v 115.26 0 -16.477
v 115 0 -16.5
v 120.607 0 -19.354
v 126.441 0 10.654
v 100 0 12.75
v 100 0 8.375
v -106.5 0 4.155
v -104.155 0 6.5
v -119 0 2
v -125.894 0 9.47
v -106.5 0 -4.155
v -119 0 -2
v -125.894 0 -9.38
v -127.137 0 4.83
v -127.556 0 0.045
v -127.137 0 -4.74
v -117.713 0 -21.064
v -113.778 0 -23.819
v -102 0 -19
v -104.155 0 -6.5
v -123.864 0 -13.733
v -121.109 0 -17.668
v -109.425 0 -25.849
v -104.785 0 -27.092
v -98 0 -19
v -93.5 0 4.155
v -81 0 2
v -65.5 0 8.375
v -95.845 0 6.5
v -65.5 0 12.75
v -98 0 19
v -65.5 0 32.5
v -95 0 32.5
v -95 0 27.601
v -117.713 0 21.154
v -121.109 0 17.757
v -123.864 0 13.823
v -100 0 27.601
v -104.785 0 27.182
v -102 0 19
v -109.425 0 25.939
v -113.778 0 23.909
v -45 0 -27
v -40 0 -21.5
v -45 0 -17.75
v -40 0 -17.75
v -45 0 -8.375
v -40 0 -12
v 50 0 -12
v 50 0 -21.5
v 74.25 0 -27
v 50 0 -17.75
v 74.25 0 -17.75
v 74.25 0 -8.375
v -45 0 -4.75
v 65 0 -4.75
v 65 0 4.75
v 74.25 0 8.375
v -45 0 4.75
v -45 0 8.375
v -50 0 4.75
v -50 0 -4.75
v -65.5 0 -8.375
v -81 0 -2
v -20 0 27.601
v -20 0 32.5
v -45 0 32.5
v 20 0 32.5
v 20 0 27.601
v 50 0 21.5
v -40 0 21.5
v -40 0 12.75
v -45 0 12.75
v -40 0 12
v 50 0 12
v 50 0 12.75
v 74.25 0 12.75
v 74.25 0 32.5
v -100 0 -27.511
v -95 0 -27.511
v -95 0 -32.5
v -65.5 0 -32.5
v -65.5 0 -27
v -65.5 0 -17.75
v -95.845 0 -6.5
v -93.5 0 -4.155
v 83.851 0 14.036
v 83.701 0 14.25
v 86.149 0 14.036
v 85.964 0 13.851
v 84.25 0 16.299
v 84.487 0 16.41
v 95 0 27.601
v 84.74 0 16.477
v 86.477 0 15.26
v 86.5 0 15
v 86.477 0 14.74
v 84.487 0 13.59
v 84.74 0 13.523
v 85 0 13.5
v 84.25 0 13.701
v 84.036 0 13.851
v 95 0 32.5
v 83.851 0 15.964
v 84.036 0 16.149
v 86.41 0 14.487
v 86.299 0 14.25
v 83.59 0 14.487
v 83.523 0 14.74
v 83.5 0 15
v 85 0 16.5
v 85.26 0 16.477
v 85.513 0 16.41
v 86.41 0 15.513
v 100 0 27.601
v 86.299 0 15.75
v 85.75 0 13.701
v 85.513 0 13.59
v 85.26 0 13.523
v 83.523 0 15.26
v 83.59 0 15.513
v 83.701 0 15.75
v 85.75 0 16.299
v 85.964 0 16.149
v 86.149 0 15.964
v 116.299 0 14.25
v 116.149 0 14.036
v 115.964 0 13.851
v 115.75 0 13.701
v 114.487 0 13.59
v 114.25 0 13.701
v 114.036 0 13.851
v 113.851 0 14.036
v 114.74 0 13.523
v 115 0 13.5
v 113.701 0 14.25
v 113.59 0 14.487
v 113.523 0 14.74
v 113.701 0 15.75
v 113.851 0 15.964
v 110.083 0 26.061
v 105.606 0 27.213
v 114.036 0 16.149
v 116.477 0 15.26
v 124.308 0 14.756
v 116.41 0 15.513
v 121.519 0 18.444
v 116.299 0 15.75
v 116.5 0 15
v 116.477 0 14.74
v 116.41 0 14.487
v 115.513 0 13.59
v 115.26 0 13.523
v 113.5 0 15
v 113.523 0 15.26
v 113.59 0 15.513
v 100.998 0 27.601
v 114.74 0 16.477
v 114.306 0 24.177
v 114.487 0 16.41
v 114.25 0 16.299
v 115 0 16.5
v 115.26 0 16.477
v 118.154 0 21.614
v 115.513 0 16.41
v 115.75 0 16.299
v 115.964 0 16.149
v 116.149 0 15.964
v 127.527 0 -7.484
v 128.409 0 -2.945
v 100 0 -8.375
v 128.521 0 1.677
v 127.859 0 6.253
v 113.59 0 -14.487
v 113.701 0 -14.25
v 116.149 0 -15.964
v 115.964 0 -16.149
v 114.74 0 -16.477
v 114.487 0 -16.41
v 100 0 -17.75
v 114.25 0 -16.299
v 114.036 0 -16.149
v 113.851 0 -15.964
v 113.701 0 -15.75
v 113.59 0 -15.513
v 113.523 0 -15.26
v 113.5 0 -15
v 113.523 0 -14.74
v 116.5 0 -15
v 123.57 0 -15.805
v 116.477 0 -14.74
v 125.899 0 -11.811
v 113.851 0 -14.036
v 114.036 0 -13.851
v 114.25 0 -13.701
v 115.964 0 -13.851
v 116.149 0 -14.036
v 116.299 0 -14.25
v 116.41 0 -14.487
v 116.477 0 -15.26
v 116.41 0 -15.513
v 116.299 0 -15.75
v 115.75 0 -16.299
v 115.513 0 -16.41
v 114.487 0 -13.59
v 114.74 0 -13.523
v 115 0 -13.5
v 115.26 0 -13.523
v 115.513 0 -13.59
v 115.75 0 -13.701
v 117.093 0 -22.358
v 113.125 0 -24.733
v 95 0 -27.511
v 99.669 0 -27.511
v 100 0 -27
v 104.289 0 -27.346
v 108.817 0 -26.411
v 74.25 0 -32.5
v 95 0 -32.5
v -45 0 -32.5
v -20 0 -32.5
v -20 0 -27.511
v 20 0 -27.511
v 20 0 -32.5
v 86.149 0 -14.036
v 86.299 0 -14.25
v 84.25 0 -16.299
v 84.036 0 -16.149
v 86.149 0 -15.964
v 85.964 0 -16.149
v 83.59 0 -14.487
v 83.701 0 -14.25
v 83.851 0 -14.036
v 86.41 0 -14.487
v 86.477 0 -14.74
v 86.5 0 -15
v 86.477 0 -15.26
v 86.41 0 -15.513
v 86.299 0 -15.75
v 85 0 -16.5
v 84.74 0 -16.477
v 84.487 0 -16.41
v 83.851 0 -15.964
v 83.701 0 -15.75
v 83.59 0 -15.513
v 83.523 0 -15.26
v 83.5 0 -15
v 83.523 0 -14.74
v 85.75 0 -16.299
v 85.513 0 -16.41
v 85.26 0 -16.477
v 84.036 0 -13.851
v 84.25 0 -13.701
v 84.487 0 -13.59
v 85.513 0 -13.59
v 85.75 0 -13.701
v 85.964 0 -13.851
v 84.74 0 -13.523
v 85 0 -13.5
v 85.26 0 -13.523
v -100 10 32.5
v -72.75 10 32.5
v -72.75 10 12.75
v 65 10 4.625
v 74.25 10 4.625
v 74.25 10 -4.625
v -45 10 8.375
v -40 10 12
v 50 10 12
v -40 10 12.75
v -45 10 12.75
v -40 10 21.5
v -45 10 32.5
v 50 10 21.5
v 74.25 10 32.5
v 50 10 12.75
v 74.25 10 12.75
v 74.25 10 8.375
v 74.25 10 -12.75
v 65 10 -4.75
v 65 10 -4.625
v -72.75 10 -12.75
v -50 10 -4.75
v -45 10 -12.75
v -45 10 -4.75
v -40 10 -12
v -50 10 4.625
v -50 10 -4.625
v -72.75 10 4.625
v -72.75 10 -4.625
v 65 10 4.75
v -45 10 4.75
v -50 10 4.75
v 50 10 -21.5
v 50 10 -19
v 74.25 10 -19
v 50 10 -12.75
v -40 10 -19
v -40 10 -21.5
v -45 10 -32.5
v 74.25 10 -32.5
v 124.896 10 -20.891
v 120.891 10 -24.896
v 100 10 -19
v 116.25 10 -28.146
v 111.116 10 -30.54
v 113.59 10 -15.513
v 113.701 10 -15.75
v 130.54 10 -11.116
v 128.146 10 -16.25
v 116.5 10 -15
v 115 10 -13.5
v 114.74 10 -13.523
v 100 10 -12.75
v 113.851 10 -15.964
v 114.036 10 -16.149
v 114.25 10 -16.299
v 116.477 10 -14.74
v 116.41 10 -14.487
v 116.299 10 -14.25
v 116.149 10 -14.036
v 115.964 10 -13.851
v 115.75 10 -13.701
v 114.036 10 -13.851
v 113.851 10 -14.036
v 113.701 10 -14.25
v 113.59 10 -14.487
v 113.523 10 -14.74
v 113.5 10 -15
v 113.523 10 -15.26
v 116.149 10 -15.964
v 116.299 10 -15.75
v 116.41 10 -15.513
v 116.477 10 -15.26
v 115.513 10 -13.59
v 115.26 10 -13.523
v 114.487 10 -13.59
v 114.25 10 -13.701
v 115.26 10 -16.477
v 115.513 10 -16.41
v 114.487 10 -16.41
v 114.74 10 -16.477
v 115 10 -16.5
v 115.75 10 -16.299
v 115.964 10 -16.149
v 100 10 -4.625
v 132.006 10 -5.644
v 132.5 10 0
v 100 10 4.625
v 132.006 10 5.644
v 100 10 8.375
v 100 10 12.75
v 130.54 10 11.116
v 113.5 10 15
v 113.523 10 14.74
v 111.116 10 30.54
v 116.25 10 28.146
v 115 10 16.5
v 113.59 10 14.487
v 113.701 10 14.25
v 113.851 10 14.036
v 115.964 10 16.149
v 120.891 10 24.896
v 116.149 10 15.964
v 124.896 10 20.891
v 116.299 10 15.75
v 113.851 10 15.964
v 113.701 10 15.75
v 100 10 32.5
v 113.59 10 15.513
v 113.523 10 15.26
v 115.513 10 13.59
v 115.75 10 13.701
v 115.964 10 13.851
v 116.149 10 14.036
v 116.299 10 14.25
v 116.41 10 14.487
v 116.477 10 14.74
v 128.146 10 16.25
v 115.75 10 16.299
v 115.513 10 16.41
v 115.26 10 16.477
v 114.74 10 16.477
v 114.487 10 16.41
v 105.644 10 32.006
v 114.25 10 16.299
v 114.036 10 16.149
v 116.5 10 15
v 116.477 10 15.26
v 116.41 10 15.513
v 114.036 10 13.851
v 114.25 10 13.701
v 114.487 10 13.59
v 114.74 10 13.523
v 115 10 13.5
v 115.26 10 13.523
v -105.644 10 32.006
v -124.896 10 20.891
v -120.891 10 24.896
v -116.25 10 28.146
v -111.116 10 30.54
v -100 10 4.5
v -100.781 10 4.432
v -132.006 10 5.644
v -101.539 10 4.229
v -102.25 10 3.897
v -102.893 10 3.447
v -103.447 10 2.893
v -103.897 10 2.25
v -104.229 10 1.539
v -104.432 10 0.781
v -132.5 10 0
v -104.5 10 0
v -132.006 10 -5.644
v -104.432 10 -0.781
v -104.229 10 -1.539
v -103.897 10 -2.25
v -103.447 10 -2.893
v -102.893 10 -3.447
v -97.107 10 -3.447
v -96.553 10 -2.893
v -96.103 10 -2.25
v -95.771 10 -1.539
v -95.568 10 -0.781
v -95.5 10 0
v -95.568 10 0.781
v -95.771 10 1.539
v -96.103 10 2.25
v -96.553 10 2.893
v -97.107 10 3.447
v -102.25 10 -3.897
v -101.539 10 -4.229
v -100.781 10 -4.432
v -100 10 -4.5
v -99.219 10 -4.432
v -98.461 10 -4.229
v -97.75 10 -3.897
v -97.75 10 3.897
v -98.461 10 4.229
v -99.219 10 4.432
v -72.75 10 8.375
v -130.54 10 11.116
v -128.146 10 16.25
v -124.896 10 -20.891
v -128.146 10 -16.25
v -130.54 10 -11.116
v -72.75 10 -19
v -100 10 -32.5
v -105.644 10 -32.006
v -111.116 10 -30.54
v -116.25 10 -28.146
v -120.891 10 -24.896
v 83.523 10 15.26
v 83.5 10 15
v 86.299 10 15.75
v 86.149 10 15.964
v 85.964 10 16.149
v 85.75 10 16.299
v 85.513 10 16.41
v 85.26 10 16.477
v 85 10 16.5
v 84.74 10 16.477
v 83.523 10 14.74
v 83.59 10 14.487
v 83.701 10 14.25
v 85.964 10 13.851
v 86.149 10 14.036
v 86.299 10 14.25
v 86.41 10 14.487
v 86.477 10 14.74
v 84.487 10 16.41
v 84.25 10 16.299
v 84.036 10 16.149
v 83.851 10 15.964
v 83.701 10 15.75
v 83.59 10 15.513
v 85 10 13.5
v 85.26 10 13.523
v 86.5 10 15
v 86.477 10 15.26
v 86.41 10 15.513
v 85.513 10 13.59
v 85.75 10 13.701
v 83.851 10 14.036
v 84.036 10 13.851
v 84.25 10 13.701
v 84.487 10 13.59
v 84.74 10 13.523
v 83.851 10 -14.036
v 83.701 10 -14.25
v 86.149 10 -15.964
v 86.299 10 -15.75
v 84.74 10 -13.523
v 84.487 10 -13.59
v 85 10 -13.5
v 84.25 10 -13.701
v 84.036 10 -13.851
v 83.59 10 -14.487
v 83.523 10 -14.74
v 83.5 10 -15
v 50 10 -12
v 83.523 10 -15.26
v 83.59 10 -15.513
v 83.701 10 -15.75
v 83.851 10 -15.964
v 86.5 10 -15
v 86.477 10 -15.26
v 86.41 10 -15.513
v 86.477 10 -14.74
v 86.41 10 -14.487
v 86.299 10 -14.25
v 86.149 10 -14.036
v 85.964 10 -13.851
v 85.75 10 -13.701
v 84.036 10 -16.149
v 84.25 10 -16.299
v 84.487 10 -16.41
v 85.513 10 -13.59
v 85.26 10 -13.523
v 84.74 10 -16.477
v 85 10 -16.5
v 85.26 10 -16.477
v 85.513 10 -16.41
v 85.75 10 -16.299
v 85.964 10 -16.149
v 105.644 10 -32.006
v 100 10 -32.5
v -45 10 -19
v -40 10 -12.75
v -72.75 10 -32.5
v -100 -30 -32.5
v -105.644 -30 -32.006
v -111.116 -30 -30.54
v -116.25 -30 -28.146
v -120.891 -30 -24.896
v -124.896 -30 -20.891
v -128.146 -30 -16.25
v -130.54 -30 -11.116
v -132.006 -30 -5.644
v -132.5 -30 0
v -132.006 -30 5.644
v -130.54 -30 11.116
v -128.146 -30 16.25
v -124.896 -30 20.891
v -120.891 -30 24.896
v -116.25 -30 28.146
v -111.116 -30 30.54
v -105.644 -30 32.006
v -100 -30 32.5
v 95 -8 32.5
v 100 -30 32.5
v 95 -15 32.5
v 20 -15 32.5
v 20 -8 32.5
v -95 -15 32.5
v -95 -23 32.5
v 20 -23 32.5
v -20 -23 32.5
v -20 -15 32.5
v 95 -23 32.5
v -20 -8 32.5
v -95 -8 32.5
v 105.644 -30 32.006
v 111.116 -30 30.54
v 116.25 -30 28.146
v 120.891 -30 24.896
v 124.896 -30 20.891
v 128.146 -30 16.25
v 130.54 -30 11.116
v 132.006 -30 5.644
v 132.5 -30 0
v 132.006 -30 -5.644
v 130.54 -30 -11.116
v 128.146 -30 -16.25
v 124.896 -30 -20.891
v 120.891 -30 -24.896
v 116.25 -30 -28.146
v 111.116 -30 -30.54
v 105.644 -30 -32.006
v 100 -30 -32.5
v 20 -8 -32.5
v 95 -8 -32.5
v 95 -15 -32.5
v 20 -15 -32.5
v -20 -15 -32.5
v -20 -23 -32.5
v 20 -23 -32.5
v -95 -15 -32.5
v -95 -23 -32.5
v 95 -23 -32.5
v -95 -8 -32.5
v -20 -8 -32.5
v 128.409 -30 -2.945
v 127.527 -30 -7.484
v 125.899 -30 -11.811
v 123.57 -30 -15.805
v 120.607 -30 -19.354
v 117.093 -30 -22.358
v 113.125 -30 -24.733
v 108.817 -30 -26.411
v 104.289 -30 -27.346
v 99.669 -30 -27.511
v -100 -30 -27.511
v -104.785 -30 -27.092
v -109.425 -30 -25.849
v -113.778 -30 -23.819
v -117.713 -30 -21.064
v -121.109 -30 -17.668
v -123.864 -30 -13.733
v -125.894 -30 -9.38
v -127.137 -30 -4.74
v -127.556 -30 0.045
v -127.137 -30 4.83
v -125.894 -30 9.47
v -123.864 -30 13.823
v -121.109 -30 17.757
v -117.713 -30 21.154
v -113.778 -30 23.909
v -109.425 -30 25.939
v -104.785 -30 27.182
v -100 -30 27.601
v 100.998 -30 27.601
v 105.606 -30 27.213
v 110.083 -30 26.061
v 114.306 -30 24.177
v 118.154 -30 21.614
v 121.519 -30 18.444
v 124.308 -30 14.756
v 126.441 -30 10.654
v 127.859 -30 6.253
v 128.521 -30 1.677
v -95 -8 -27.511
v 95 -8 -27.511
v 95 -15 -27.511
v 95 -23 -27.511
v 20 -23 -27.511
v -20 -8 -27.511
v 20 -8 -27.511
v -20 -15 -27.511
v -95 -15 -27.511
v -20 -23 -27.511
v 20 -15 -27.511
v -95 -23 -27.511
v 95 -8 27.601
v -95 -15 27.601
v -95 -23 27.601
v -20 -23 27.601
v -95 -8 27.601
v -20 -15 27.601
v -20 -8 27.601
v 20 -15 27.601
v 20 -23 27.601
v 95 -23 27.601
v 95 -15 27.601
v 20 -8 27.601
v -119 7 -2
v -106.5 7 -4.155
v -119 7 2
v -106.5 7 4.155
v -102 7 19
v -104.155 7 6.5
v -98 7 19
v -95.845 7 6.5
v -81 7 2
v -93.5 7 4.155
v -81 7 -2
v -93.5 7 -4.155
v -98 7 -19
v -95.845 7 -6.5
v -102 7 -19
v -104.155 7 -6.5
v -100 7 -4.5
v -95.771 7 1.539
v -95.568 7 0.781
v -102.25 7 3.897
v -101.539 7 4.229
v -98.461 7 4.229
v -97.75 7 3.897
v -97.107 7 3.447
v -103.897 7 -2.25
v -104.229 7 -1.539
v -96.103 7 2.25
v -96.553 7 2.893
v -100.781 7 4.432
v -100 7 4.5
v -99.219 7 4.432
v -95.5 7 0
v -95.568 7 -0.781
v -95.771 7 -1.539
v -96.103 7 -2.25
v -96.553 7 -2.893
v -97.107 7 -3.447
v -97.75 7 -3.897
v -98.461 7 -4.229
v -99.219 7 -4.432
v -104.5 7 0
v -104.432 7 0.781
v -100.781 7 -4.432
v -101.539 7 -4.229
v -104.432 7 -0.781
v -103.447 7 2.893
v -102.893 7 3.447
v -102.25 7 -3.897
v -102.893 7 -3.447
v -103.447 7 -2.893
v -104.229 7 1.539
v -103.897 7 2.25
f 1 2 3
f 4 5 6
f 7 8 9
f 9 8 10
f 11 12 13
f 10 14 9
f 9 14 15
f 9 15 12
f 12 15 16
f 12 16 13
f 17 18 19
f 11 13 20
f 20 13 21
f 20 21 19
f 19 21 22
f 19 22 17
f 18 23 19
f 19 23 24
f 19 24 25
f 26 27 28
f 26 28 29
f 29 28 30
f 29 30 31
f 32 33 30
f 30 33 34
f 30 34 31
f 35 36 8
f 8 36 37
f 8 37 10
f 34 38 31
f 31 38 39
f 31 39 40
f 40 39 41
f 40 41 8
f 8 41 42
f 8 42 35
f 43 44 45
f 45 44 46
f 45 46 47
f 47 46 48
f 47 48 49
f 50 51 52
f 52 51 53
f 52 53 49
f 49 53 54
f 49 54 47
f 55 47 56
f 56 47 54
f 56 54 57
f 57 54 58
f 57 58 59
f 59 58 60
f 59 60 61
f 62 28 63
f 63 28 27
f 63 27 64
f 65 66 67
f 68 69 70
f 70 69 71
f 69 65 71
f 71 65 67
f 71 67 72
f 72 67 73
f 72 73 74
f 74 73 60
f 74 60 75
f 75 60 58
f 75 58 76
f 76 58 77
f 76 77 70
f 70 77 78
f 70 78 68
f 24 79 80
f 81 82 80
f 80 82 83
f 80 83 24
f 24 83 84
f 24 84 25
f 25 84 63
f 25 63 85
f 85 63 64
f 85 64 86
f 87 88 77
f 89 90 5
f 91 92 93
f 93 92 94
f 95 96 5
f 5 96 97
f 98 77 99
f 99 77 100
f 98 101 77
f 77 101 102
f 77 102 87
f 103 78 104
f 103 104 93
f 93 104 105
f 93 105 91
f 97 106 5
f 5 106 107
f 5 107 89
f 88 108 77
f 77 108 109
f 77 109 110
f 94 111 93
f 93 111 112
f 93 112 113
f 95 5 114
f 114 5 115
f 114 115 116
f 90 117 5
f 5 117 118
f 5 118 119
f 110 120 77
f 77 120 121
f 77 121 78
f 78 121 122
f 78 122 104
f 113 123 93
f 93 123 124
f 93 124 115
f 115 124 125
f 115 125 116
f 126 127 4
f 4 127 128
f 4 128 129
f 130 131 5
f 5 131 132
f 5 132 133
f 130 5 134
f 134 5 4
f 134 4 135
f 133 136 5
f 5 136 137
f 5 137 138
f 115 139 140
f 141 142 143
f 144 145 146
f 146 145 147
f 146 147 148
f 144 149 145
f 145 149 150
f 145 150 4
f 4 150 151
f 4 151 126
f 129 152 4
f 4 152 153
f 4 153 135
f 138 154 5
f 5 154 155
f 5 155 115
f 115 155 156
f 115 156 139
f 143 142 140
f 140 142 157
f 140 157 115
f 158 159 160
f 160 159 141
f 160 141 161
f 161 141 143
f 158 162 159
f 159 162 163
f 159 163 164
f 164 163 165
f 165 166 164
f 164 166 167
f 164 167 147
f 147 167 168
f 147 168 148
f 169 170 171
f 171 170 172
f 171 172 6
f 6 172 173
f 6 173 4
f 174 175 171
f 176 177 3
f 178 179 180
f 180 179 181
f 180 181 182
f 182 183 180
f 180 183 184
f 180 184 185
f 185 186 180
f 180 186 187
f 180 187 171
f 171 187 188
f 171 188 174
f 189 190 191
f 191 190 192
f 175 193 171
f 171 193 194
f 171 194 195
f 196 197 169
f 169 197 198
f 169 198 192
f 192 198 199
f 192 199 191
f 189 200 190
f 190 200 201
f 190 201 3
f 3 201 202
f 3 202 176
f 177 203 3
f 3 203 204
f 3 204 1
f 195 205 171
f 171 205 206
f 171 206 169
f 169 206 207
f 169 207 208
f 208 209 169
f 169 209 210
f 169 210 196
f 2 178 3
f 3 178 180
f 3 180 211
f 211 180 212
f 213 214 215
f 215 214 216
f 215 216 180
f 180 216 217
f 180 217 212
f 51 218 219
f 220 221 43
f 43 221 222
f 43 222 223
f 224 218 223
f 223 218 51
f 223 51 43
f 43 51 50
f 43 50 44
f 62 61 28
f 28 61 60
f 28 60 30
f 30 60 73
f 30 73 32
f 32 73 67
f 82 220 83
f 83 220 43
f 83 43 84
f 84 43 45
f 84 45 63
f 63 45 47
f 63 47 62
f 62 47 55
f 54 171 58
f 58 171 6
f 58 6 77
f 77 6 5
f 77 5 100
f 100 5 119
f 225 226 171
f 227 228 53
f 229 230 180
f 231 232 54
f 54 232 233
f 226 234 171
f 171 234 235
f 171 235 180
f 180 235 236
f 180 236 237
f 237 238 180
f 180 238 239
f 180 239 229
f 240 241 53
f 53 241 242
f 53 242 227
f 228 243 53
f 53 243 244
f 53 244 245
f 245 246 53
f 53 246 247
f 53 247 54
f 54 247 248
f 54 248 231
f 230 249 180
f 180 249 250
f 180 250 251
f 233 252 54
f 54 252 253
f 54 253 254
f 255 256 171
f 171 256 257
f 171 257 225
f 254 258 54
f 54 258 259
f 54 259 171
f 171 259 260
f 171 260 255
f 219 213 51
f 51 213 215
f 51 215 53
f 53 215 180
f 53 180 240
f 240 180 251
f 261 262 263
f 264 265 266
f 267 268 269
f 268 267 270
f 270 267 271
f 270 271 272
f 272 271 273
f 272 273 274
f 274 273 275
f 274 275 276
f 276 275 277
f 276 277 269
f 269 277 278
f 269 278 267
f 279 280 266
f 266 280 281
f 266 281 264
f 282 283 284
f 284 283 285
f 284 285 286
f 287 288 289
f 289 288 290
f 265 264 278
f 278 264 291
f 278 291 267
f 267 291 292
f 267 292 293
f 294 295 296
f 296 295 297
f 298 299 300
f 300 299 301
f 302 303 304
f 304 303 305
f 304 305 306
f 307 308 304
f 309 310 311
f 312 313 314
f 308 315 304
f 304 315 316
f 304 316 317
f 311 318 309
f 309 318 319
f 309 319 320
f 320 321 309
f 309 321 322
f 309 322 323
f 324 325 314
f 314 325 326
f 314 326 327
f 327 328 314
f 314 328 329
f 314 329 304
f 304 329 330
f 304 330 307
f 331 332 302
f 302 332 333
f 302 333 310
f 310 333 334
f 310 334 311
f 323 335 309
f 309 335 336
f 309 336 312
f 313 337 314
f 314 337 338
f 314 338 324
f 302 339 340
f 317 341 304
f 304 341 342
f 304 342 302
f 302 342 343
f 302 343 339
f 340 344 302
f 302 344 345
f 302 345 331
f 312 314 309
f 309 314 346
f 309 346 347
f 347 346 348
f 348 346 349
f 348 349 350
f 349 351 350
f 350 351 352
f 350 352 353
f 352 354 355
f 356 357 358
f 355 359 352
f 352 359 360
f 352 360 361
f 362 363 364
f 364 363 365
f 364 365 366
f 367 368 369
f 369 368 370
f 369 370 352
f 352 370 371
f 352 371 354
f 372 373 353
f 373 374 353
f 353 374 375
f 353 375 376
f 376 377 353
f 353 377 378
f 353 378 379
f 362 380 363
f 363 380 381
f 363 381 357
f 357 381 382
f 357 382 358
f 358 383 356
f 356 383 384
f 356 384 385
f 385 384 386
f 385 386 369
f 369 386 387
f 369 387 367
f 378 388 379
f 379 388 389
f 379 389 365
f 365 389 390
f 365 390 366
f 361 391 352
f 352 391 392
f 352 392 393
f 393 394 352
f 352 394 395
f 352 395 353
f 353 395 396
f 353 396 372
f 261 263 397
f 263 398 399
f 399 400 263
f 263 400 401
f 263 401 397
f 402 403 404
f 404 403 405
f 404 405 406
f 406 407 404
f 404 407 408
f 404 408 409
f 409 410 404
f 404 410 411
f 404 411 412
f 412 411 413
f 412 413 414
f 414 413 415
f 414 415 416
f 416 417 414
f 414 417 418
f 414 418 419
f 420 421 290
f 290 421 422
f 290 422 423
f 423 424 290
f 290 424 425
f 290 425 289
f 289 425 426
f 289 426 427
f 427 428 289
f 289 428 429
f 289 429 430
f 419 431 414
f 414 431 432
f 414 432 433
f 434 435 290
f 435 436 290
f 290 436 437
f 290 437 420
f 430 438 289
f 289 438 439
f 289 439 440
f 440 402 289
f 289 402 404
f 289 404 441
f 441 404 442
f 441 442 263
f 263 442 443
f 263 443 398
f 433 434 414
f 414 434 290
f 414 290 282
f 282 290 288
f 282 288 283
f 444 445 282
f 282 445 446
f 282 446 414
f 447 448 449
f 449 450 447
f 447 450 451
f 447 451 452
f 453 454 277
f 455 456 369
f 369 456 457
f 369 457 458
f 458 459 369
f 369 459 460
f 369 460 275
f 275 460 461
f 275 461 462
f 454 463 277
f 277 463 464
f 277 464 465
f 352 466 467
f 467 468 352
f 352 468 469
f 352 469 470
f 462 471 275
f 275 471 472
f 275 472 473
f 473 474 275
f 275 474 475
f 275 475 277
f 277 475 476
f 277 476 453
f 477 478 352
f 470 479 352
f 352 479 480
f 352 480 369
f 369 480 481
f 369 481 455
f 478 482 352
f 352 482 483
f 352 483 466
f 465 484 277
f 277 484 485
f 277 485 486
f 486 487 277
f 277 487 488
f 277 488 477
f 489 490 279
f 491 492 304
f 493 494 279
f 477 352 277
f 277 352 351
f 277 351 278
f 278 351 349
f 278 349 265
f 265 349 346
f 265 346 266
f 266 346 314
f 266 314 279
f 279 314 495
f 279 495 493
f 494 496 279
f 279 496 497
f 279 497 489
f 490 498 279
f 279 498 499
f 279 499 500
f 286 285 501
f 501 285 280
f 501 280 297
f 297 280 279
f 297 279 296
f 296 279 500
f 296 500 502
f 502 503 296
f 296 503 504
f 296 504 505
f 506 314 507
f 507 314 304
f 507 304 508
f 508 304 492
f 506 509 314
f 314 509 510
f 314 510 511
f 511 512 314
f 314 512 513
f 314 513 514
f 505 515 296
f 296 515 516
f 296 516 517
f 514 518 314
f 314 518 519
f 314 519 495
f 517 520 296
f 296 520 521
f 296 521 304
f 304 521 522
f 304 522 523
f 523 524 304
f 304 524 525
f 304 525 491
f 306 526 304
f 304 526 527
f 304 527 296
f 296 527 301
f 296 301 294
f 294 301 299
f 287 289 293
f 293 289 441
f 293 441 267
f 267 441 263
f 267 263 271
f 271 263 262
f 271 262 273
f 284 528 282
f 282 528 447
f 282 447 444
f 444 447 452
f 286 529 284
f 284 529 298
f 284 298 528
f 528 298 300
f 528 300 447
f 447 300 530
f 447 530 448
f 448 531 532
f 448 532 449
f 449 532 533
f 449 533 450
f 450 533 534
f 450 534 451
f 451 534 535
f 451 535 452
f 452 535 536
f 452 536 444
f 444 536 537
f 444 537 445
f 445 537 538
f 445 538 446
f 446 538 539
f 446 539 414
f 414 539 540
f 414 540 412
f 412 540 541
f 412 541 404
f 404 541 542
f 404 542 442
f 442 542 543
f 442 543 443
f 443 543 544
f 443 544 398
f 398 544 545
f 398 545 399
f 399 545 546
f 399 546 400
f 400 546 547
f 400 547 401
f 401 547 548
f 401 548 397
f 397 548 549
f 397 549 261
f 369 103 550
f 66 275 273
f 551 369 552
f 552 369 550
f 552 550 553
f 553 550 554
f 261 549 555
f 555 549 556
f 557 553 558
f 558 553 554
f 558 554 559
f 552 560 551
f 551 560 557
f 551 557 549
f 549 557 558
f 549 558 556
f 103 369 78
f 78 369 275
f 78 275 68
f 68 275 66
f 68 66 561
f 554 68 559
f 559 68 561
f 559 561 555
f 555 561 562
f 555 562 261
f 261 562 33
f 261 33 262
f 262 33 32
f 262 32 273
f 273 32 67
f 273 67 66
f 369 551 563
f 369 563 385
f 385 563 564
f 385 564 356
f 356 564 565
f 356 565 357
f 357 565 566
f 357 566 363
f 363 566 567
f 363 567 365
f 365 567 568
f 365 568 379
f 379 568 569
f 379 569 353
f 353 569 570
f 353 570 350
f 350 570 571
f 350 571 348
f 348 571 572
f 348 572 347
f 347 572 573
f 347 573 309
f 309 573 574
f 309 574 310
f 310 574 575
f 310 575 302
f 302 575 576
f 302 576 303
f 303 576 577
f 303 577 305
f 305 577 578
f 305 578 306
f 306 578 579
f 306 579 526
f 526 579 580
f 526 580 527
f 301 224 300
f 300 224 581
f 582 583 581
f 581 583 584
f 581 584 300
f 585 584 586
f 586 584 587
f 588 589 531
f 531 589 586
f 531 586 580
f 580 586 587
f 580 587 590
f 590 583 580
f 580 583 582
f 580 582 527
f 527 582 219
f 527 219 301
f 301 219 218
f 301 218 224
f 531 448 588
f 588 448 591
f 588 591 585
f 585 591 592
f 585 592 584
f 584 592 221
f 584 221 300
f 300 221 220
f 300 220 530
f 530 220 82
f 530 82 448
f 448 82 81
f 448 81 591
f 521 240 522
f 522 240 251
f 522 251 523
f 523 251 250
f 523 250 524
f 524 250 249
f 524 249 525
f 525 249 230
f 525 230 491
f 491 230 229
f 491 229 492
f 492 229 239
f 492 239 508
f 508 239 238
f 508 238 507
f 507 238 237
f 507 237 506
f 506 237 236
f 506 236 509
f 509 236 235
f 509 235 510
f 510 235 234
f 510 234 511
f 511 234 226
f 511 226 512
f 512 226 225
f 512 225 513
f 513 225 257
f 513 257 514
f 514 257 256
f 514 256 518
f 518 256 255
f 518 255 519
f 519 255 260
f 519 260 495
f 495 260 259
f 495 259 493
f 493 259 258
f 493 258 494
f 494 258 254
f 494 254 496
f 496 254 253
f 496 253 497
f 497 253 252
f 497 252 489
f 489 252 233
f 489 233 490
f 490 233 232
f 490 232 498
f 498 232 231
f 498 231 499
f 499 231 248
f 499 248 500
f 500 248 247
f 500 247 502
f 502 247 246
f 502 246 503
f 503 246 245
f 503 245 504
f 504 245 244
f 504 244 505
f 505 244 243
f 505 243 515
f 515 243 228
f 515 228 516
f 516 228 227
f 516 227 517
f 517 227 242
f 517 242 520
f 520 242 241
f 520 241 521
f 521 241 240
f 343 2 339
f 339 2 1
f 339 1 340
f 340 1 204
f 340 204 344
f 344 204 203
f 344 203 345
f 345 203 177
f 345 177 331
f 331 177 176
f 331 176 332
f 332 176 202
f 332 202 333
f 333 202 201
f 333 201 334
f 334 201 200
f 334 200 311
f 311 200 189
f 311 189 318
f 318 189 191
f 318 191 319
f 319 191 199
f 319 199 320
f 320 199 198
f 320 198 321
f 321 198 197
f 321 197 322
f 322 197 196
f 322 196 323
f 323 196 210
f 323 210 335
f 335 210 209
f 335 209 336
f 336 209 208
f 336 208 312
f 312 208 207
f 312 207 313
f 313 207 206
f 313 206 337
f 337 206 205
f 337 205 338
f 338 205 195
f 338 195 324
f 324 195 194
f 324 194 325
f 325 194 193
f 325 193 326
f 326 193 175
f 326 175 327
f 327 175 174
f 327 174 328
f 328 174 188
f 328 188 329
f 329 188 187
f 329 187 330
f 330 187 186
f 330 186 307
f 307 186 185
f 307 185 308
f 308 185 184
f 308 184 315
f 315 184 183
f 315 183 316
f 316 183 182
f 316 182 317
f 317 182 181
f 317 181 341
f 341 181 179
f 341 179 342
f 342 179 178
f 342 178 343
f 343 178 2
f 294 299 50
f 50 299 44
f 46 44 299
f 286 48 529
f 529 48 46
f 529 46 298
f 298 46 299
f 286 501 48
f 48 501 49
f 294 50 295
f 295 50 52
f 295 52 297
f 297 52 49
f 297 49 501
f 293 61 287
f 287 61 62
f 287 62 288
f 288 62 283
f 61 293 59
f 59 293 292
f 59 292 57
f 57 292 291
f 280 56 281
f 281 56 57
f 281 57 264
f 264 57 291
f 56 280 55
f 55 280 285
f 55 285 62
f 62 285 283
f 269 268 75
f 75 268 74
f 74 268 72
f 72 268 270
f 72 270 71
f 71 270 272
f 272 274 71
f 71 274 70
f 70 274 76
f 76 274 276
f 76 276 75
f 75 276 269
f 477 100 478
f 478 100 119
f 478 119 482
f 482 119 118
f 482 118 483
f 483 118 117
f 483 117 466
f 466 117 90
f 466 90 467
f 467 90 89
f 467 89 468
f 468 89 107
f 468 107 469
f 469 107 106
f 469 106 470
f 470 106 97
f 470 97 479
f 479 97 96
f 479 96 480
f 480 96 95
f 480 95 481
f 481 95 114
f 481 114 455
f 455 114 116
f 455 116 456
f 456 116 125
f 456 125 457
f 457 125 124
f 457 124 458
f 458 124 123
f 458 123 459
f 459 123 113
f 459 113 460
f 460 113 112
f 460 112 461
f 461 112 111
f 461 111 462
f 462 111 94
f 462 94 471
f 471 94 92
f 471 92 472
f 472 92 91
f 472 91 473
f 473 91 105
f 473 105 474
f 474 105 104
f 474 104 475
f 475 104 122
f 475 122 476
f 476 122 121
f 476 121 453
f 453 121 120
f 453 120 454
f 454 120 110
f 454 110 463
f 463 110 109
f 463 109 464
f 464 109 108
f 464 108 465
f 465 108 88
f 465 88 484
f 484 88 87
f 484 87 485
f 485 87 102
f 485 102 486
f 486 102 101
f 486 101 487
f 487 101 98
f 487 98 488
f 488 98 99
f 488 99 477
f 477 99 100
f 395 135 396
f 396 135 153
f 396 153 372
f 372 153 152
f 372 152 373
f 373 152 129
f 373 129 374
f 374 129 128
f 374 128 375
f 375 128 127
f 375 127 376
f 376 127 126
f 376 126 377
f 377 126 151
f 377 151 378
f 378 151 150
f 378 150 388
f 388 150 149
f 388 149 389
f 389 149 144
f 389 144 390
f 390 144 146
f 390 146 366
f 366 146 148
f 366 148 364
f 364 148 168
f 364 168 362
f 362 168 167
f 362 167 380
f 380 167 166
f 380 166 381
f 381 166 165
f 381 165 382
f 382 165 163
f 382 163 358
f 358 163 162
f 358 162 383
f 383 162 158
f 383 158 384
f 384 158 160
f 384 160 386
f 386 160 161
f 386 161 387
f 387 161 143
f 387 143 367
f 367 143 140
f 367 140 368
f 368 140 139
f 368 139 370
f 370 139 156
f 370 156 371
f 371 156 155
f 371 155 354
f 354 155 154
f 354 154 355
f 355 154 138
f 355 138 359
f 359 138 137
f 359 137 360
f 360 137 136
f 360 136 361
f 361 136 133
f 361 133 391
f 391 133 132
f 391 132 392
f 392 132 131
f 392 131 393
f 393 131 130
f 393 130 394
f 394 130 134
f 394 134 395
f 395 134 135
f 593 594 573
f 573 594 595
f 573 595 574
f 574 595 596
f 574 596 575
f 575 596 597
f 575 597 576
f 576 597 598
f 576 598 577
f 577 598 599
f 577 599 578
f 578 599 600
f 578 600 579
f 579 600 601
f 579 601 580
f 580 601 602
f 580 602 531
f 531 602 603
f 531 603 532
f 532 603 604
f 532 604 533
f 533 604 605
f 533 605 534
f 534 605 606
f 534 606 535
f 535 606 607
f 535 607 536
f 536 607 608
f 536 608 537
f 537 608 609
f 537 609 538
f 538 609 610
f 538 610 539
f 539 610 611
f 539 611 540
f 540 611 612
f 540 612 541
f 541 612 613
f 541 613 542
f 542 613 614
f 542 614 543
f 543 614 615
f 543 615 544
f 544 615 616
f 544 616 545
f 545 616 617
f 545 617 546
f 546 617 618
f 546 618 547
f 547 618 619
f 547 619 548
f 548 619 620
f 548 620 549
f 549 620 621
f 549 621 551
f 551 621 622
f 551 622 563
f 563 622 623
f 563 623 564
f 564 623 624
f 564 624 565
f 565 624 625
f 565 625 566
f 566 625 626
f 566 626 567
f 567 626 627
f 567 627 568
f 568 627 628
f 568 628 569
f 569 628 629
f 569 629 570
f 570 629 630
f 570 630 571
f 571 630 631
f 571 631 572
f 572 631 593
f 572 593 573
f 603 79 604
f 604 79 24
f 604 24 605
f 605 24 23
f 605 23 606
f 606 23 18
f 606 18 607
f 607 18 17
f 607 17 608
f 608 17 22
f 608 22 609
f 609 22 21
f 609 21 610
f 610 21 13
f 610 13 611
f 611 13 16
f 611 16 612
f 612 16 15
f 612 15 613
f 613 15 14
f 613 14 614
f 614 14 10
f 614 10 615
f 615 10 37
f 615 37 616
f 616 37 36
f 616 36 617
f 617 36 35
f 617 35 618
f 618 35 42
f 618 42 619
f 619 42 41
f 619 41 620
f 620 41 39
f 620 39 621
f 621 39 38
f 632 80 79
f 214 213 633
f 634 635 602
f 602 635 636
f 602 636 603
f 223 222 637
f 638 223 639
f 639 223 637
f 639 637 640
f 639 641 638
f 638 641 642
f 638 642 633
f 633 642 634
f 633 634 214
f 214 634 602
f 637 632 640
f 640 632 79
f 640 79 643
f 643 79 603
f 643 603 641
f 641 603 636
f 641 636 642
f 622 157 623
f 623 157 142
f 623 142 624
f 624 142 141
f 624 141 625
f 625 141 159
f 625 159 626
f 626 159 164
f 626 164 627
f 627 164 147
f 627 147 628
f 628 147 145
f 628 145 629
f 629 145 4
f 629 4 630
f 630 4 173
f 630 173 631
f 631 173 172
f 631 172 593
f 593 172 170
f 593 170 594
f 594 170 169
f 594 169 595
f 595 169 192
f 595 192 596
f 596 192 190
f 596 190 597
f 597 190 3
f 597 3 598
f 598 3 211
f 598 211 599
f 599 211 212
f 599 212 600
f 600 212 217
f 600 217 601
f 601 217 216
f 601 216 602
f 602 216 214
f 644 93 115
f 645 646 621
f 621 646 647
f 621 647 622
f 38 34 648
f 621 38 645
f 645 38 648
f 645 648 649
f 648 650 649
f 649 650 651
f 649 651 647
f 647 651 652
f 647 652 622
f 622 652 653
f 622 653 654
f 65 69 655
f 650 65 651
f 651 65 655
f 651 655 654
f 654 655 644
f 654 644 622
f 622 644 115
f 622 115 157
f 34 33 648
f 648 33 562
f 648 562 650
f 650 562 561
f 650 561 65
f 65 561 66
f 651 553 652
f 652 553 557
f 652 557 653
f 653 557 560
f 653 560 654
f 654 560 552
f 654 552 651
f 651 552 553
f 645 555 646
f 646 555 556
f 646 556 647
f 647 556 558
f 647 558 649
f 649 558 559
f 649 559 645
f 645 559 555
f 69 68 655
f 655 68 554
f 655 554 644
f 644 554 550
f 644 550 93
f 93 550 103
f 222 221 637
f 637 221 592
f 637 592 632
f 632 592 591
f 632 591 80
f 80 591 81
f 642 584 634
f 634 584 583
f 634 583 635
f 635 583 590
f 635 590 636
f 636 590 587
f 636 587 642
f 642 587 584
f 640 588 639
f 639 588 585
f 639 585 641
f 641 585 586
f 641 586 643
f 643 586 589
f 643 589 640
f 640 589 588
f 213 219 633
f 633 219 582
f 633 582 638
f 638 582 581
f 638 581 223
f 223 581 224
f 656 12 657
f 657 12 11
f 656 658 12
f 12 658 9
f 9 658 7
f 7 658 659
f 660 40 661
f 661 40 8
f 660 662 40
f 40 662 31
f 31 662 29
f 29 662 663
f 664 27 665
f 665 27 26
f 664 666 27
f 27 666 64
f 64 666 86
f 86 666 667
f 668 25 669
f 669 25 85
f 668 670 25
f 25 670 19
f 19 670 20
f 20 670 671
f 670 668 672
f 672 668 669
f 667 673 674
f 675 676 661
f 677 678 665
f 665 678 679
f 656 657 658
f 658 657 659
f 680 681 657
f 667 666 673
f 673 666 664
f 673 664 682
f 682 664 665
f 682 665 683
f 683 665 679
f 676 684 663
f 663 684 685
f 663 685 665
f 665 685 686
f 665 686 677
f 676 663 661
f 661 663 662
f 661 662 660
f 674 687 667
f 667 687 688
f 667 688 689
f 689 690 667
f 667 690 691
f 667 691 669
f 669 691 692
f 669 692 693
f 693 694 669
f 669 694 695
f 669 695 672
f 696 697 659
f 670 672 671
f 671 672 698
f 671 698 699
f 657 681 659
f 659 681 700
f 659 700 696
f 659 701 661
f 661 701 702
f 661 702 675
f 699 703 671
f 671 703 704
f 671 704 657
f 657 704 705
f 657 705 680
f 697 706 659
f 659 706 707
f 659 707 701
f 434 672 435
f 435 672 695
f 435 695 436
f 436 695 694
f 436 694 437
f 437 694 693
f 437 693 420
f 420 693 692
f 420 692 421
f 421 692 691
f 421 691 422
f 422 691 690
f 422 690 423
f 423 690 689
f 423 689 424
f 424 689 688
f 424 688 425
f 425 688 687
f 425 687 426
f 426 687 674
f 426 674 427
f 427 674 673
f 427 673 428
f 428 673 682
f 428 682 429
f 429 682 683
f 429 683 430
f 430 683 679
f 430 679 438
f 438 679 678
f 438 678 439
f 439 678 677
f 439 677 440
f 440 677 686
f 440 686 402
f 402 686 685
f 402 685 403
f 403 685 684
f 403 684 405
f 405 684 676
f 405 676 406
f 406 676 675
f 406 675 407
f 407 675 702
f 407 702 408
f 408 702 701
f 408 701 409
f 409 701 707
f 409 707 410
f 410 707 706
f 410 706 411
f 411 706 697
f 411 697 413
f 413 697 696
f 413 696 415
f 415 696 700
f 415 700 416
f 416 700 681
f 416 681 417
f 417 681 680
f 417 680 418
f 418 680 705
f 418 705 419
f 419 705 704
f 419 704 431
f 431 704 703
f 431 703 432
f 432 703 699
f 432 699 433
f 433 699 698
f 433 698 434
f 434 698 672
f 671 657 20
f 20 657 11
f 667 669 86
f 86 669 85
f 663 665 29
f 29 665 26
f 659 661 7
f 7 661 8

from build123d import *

# Parameters (mm, degrees)
SKETCH1_R           = 1.5
BOSS_EXTRUDE1_DEPTH = 10
BOSS_EXTRUDE2_START = -30
BOSS_EXTRUDE2_DEPTH = 30
SKETCH3_W           = 75
SKETCH3_H           = 8
CUT_EXTRUDE1_DEPTH  = 45
CUT_EXTRUDE2_DEPTH  = 7
SKETCH5_R           = 4.5
CUT_EXTRUDE3_DEPTH  = 10
CUT_EXTRUDE4_DEPTH  = 7


with BuildPart() as part:
    # Sketch1 → Boss-Extrude1 (new body)
    with BuildSketch(Plane(origin=(0, 0, 0), x_dir=(1, 0, 0), z_dir=(0, 1, 0))):
        with BuildLine():
            Line((-100, 32.5), (100, 32.5))
            ThreePointArc((100, 32.5), (132.5, 0), (100, -32.5))
            Line((100, -32.5), (-100, -32.5))
            ThreePointArc((-100, -32.5), (-132.5, 0), (-100, 32.5))
        make_face()
        with Locations(Location((85, 15, 0), (0, 0, 270))):
            Circle(SKETCH1_R, mode=Mode.SUBTRACT)
        with Locations(Location((115, 15, 0), (0, 0, 90))):
            Circle(SKETCH1_R, mode=Mode.SUBTRACT)
        with Locations(Location((85, -15, 0), (0, 0, 90))):
            Circle(SKETCH1_R, mode=Mode.SUBTRACT)
        with Locations(Location((115, -15, 0), (0, 0, 270))):
            Circle(SKETCH1_R, mode=Mode.SUBTRACT)
        Polygon((0, 21.5), (-40, 21.5), (-40, 12), (0, 12), (50, 12), (50, 21.5), align=None, mode=Mode.SUBTRACT)
        Polygon((-50, 4.75), (0, 4.75), (65, 4.75), (65, -4.75), (0, -4.75), (-50, -4.75), align=None, mode=Mode.SUBTRACT)
        Polygon((0, -12), (-40, -12), (-40, -21.5), (0, -21.5), (50, -21.5), (50, -12), align=None, mode=Mode.SUBTRACT)
    extrude(amount=BOSS_EXTRUDE1_DEPTH)

    # Sketch2 → Boss-Extrude2 (add)
    with BuildSketch(Plane(origin=(0, 0, 0), x_dir=(1, 0, 0), z_dir=(0, 1, 0)).offset(BOSS_EXTRUDE2_START)):
        with BuildLine():
            Line((-100, 32.5), (100, 32.5))
            ThreePointArc((100, 32.5), (132.5, 0), (100, -32.5))
            Line((100, -32.5), (-100, -32.5))
            ThreePointArc((-100, -32.5), (-132.5, 0), (-100, 32.5))
        make_face()
        with BuildLine():
            Line((99.668543355, 27.510998447), (-100, 27.510998447))
            ThreePointArc((-100, 27.510998447), (-127.55585262, -0.044854173), (-100, -27.600706793))
            Line((-100, -27.600706793), (100.998461852, -27.600706793))
            ThreePointArc((100.998461852, -27.600706793), (128.562336478, 0.636345006), (99.668543355, 27.510998447))
        make_face(mode=Mode.SUBTRACT)
    extrude(amount=BOSS_EXTRUDE2_DEPTH)

    # Sketch3 → Cut-Extrude1 (cut, symmetric)
    with BuildSketch(Plane.XY):
        with Locations((-57.5, -19)):
            Rectangle(SKETCH3_W, SKETCH3_H)
        with Locations((57.5, -19)):
            Rectangle(SKETCH3_W, SKETCH3_H)
        with Locations((57.5, -4)):
            Rectangle(SKETCH3_W, SKETCH3_H)
        with Locations((-57.5, -4)):
            Rectangle(SKETCH3_W, SKETCH3_H)
    extrude(amount=CUT_EXTRUDE1_DEPTH, both=True, mode=Mode.SUBTRACT)

    # Sketch4 → Cut-Extrude2 (cut)
    with BuildSketch(Plane(origin=(0, 0, 0), x_dir=(1, 0, 0), z_dir=(0, 1, 0))):
        Polygon((-102, 19), (-98, 19), (-95.5, 4.5), (-81, 2), (-81, -2), (-95.5, -4.5), (-98, -19), (-102, -19), (-104.5, -4.5), (-119, -2), (-119, 2), (-104.5, 4.5), align=None)
    extrude(amount=CUT_EXTRUDE2_DEPTH, mode=Mode.SUBTRACT)

    # Sketch5 → Cut-Extrude3 (cut)
    with BuildSketch(Plane(origin=(0, 0, 0), x_dir=(1, 0, 0), z_dir=(0, 1, 0))):
        with Locations(Location((-100, 0, 0), (0, 0, 90))):
            Circle(SKETCH5_R)
    extrude(amount=CUT_EXTRUDE3_DEPTH, mode=Mode.SUBTRACT)

    # Sketch7 → Cut-Extrude4 (cut)
    with BuildSketch(Plane.XZ):
        Polygon((-106.5, 4.155172414), (-106.5, -4.155172414), (-104.155172414, -6.5), (-95.844827586, -6.5), (-93.5, -4.155172414), (-93.5, 4.155172414), (-95.844827586, 6.5), (-104.155172414, 6.5), align=None)
    extrude(amount=-CUT_EXTRUDE4_DEPTH, mode=Mode.SUBTRACT)


solid = part.part
